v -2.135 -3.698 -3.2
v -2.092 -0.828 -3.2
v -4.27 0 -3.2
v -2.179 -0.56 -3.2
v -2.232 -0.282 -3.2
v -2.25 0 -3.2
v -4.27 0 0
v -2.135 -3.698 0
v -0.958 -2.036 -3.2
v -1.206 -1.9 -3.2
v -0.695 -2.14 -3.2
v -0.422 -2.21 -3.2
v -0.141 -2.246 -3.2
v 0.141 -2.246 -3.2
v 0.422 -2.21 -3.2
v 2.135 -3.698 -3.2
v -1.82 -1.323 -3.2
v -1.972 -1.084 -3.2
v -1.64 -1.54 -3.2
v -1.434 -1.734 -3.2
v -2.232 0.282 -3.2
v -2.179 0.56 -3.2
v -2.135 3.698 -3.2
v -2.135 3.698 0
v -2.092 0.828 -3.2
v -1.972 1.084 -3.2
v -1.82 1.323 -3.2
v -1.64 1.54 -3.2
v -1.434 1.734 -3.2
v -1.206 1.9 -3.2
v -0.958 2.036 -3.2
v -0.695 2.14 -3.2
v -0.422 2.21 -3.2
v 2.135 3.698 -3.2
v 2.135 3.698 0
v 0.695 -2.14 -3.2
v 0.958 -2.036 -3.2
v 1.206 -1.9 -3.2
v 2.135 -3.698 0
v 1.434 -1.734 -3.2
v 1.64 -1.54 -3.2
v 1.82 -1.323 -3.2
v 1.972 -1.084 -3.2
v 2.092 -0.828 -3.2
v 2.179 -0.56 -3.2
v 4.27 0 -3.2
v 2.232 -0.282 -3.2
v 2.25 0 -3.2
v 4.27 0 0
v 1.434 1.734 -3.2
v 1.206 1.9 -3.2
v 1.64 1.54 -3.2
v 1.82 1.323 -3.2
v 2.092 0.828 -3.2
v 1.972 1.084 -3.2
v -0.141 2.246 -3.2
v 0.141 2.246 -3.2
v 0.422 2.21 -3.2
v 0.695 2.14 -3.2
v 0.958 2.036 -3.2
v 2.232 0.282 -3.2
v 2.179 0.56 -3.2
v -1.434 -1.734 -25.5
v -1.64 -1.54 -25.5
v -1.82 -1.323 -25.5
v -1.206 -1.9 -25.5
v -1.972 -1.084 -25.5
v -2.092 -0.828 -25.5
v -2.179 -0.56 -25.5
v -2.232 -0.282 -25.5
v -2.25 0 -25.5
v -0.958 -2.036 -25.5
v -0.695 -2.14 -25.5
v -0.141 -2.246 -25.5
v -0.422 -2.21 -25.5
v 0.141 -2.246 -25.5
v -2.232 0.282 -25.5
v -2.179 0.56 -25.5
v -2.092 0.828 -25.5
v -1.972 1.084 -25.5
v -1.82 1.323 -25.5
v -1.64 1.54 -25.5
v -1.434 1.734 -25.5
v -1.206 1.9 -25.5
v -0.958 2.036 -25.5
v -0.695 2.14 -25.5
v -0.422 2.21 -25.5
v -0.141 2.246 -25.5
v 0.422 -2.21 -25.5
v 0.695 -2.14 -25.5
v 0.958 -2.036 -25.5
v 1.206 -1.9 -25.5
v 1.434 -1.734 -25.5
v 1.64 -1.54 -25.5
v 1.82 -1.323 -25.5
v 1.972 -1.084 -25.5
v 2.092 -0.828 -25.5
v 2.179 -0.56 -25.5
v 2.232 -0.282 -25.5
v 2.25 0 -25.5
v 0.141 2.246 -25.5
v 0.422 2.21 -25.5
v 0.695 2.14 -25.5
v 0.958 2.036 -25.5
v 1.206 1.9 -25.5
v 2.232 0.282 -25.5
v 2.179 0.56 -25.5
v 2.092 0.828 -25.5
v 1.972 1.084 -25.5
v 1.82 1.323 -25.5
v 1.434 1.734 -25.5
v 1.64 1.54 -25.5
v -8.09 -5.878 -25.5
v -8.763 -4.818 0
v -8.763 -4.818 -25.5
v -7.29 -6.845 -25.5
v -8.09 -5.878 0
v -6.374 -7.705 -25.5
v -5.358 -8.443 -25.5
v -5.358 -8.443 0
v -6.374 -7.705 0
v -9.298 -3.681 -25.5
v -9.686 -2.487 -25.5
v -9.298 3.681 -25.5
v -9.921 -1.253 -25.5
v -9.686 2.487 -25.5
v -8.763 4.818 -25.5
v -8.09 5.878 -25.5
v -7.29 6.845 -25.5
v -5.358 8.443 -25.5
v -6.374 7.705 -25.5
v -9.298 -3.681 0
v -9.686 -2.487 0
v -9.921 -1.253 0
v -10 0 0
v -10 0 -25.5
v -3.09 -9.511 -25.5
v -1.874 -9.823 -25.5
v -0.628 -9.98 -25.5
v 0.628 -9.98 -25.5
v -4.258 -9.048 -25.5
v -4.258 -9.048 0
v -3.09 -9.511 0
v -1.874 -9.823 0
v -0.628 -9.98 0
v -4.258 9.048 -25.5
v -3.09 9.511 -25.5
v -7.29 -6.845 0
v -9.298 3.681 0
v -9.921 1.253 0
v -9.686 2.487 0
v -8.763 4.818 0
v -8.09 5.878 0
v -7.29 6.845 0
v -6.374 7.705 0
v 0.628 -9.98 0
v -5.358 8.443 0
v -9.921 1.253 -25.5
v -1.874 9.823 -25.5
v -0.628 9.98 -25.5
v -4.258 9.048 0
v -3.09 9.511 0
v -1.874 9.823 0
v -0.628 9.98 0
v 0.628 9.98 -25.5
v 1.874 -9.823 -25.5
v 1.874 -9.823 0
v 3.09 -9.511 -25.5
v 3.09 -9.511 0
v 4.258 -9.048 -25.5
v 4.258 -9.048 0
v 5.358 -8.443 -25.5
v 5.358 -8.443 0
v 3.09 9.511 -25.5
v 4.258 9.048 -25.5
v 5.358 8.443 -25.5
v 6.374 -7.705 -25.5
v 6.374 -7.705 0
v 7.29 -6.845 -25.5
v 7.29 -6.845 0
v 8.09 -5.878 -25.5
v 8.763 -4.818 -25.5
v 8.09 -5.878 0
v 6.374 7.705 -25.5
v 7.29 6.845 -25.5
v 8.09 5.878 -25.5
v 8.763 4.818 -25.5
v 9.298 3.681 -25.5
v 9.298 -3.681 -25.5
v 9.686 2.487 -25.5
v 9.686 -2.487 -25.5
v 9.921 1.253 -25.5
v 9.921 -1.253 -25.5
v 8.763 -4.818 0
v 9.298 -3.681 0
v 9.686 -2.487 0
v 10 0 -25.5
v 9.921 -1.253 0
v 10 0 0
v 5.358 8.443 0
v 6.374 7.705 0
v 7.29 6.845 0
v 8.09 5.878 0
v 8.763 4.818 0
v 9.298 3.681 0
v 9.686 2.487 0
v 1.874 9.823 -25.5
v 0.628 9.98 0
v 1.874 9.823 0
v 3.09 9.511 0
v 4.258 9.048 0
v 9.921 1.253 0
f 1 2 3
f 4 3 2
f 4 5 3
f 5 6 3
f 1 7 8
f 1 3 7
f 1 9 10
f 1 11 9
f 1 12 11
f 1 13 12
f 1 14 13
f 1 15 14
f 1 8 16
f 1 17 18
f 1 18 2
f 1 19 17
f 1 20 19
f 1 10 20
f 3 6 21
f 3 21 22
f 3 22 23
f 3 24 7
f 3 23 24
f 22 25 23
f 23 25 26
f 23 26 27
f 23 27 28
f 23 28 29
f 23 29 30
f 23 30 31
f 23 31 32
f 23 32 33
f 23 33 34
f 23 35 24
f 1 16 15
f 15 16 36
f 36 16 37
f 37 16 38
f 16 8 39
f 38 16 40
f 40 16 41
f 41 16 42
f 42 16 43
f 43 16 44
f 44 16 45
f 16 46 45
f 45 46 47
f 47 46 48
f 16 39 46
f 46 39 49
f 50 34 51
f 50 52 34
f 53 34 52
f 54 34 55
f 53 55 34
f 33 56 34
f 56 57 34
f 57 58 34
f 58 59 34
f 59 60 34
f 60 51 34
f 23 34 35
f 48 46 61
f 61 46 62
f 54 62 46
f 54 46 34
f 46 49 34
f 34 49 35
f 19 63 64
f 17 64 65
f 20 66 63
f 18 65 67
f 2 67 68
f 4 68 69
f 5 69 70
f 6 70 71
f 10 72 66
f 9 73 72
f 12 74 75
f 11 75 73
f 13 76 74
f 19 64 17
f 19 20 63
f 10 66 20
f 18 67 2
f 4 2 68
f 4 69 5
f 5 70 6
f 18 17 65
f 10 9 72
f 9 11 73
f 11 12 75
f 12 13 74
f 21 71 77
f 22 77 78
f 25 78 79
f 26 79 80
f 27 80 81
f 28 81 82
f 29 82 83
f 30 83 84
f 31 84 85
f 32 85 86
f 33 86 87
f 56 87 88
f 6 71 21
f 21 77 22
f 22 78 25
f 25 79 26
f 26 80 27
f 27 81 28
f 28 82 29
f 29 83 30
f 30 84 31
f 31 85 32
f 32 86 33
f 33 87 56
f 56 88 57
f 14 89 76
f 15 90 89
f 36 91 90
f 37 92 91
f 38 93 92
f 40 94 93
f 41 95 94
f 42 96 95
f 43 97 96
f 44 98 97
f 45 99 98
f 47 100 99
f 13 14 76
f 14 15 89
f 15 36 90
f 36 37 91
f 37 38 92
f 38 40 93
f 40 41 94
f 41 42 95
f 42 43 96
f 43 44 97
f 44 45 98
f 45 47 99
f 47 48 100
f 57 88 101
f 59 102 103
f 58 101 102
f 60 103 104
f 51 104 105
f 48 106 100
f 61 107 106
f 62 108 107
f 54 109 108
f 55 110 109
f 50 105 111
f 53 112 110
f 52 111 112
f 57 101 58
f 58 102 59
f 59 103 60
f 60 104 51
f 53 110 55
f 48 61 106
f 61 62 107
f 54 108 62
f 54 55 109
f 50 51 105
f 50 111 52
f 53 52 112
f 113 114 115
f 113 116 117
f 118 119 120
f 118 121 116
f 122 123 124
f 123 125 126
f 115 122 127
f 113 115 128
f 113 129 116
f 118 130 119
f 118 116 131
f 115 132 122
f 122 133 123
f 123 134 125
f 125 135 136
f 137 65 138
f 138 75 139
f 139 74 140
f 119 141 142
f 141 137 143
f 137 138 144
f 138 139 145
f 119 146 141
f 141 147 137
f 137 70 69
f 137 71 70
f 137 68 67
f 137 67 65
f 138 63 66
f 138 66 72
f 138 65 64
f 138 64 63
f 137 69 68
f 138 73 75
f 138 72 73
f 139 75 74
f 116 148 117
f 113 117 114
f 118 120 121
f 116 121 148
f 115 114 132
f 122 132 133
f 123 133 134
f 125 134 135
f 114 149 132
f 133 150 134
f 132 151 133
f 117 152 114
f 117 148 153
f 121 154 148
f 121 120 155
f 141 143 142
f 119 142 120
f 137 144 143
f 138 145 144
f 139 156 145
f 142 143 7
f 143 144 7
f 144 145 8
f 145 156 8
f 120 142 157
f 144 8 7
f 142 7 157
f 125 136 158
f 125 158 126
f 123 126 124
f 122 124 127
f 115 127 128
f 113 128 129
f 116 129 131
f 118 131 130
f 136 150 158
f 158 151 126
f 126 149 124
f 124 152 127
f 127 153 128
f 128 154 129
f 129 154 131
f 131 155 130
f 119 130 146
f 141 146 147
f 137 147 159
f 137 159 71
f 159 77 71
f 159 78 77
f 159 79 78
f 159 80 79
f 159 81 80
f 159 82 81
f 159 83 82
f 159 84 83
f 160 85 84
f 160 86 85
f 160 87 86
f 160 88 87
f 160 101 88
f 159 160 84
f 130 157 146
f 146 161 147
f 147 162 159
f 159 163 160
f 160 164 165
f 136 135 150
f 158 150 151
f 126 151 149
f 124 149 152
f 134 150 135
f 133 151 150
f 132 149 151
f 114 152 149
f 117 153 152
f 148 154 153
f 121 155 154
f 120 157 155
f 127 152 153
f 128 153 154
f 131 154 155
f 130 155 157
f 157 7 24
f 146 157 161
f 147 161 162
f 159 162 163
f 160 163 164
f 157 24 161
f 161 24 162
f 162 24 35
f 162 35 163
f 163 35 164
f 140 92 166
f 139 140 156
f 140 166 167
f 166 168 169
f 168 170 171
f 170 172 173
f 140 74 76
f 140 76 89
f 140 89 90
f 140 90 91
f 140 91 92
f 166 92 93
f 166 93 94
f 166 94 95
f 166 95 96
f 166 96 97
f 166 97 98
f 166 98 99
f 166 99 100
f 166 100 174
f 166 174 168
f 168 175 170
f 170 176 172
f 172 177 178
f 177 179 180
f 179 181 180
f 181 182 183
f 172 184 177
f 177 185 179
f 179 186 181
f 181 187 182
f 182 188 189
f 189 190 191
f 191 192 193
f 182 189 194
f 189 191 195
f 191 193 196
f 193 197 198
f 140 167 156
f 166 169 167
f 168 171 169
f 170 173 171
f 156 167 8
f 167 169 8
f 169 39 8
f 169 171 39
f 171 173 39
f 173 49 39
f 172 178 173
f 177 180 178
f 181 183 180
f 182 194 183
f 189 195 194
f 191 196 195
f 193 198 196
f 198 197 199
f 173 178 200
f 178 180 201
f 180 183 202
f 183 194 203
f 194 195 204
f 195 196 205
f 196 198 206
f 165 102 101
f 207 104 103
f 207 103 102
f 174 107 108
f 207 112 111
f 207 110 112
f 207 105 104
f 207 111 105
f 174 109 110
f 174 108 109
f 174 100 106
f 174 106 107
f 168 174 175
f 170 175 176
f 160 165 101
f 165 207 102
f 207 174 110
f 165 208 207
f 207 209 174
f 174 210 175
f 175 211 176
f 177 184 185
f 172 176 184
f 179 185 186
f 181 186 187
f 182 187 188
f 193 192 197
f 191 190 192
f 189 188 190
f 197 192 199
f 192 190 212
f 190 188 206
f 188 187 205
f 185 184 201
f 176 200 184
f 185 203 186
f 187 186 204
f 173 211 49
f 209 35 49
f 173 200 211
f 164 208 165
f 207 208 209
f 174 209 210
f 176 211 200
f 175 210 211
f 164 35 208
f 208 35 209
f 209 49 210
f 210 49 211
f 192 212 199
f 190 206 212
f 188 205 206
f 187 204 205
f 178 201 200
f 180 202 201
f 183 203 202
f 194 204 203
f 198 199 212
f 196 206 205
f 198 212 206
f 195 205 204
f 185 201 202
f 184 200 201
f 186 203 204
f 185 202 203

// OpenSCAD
$fn = 50;

difference() {
	union() {
		translate(v = [0, 0, -25.5]) {
			cylinder(h = 25.5, r = 10.0);
		}
	}
	union() {
		translate(v = [0, 0, 0]) {
			rotate(a = [0, 0, 0]) {
				difference() {
					union() {
						translate(v = [0, 0, -3.2]) {
							linear_extrude(height = 3.2) {
								polygon(points = [[4.2698, 0.0], [2.1349000000000005, 3.697755269078796], [-2.134899999999999, 3.6977552690787965], [-4.2698, 5.228996902999369e-16], [-2.134900000000002, -3.6977552690787956], [2.1348999999999974, -3.697755269078798]]);
							}
						}
					}
					union();
				}
			}
		}
		#translate(v = [0, 0, -100.0]) {
			cylinder(h = 200, r = 2.25);
		}
	}
}
